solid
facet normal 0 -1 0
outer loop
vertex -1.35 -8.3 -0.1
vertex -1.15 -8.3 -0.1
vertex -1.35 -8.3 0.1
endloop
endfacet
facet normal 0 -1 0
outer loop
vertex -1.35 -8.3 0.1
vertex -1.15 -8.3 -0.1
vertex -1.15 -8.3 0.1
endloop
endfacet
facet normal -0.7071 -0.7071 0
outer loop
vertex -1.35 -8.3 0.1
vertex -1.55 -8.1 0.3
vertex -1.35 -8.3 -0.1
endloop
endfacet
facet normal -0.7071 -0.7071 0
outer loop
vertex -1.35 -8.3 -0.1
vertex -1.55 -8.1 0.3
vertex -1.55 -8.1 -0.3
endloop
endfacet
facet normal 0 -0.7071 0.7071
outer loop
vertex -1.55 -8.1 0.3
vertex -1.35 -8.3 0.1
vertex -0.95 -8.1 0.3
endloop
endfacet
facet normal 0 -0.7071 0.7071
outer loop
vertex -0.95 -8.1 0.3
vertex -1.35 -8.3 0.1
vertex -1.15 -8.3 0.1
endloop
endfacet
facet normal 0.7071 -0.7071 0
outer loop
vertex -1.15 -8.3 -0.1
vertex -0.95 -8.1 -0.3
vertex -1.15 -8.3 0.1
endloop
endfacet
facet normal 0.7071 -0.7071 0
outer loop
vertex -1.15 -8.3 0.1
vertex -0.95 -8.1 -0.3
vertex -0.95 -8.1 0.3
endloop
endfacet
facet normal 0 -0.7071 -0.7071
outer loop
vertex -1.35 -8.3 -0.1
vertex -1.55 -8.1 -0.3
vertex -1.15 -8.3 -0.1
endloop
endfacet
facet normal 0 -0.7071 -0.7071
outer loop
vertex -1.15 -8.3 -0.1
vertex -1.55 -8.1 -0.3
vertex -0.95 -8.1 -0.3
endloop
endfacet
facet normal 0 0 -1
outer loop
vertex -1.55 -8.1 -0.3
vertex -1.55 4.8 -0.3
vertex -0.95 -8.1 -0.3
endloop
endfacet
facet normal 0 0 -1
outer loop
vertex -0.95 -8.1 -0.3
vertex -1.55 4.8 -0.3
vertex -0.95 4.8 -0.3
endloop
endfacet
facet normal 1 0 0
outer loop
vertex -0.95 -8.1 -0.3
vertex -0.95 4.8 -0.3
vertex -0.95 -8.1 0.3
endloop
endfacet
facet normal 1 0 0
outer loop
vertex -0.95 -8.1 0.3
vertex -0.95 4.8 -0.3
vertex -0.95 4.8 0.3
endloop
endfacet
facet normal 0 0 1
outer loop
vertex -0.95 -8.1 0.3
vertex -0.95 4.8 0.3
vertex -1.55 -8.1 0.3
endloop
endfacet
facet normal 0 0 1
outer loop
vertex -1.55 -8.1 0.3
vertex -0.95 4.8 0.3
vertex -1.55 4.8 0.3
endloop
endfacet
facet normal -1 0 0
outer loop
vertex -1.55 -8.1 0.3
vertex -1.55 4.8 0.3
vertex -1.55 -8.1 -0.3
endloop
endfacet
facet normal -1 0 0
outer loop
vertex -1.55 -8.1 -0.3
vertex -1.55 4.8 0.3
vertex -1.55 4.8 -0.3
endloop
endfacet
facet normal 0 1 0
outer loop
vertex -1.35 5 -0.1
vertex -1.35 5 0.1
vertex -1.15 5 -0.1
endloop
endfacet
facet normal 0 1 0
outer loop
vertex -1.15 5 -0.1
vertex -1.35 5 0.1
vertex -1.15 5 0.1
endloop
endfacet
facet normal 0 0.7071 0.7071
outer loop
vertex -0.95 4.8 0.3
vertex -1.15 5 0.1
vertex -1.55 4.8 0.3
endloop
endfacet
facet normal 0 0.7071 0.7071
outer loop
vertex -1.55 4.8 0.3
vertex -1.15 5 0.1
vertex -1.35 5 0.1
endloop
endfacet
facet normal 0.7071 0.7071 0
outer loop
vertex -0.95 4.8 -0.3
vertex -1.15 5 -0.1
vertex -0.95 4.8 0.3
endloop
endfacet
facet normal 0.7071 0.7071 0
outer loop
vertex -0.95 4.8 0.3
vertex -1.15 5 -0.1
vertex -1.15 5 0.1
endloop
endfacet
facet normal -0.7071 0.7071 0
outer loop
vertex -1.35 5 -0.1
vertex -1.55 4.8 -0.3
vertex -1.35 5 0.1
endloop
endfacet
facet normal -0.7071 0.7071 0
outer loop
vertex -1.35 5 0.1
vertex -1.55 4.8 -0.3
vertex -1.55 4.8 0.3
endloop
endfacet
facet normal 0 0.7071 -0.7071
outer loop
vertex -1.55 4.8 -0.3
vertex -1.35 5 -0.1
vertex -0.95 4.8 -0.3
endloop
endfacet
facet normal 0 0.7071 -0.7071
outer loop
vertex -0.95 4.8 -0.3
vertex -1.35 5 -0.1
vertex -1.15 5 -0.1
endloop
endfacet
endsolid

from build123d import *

# Parameters (mm, degrees)
SKETCH1_W                = 5.5
SKETCH1_H                = 2.5
BOSS_EXTRUDE1_DEPTH      = 2.5
BOSS_EXTRUDE2_START      = -10.8
SKETCH2_W                = 0.6
SKETCH2_H                = 0.6
BOSS_EXTRUDE2_DEPTH      = 13.3
CHAMFER1_SIZE            = 0.2
CHAMFER1_OF_MIRROR1_SIZE = 0.2
SKETCH3_W                = 12.315136804
SKETCH3_H                = 10.630786544
SKETCH3_W_2              = 0.6
SKETCH3_H_2              = 0.6
CUT_EXTRUDE2_DEPTH       = 10
CUT_EXTRUDE2_DEPTH_BACK  = 30


with BuildPart() as part:
    # Sketch1 → Boss-Extrude1 (new body)
    with BuildSketch(Plane(origin=(0, 0, 0), x_dir=(1, 0, 0), z_dir=(0, 1, 0))):
        Rectangle(SKETCH1_W, SKETCH1_H)
    extrude(amount=BOSS_EXTRUDE1_DEPTH)

    # Sketch2 → Boss-Extrude2 (add)
    with BuildSketch(Plane(origin=(0, 2.5, 0), x_dir=(1, 0, 0), z_dir=(0, 1, 0)).offset(BOSS_EXTRUDE2_START)):
        with Locations((-1.25, 0)):
            Rectangle(SKETCH2_W, SKETCH2_H)
    boss_extrude2 = extrude(amount=BOSS_EXTRUDE2_DEPTH)

    # Chamfer1
    chamfer1_edges = [part.edges().sort_by_distance(p)[0] for p in [
        (-1.55, -8.3, 0),
        (-1.25, -8.3, -0.3),
        (-0.95, -8.3, 0),
        (-1.25, -8.3, 0.3),
        (-1.55, 5, 0),
        (-1.25, 5, 0.3),
        (-0.95, 5, 0),
        (-1.25, 5, -0.3),
    ]]
    chamfer(chamfer1_edges, length=CHAMFER1_SIZE)

    # Mirror1: Boss-Extrude2 across plane
    add(boss_extrude2.mirror(Plane(origin=(0, 0, 0), x_dir=(0, 0, 1), z_dir=(1, 0, 0))))

    # Chamfer1 of Mirror1
    chamfer1_of_mirror1_edges = [part.edges().sort_by_distance(p)[0] for p in [
        (1.55, -8.3, 0),
        (1.25, -8.3, -0.3),
        (0.95, -8.3, 0),
        (1.25, -8.3, 0.3),
        (1.55, 5, 0),
        (1.25, 5, 0.3),
        (0.95, 5, 0),
        (1.25, 5, -0.3),
    ]]
    chamfer(chamfer1_of_mirror1_edges, length=CHAMFER1_OF_MIRROR1_SIZE)

    # Sketch3 → Cut-Extrude2 (cut, two sides)
    with BuildSketch(Plane(origin=(0, 2.5, 0), x_dir=(1, 0, 0), z_dir=(0, 1, 0))) as cut_extrude2_sk:
        with Locations((0.038795384, 0.437700071)):
            Rectangle(SKETCH3_W, SKETCH3_H)
        with Locations((-1.25, 0)):
            Rectangle(SKETCH3_W_2, SKETCH3_H_2, mode=Mode.SUBTRACT)
    extrude(amount=CUT_EXTRUDE2_DEPTH, mode=Mode.SUBTRACT)
    extrude(cut_extrude2_sk.sketch, amount=-CUT_EXTRUDE2_DEPTH_BACK, mode=Mode.SUBTRACT)


solid = part.part
